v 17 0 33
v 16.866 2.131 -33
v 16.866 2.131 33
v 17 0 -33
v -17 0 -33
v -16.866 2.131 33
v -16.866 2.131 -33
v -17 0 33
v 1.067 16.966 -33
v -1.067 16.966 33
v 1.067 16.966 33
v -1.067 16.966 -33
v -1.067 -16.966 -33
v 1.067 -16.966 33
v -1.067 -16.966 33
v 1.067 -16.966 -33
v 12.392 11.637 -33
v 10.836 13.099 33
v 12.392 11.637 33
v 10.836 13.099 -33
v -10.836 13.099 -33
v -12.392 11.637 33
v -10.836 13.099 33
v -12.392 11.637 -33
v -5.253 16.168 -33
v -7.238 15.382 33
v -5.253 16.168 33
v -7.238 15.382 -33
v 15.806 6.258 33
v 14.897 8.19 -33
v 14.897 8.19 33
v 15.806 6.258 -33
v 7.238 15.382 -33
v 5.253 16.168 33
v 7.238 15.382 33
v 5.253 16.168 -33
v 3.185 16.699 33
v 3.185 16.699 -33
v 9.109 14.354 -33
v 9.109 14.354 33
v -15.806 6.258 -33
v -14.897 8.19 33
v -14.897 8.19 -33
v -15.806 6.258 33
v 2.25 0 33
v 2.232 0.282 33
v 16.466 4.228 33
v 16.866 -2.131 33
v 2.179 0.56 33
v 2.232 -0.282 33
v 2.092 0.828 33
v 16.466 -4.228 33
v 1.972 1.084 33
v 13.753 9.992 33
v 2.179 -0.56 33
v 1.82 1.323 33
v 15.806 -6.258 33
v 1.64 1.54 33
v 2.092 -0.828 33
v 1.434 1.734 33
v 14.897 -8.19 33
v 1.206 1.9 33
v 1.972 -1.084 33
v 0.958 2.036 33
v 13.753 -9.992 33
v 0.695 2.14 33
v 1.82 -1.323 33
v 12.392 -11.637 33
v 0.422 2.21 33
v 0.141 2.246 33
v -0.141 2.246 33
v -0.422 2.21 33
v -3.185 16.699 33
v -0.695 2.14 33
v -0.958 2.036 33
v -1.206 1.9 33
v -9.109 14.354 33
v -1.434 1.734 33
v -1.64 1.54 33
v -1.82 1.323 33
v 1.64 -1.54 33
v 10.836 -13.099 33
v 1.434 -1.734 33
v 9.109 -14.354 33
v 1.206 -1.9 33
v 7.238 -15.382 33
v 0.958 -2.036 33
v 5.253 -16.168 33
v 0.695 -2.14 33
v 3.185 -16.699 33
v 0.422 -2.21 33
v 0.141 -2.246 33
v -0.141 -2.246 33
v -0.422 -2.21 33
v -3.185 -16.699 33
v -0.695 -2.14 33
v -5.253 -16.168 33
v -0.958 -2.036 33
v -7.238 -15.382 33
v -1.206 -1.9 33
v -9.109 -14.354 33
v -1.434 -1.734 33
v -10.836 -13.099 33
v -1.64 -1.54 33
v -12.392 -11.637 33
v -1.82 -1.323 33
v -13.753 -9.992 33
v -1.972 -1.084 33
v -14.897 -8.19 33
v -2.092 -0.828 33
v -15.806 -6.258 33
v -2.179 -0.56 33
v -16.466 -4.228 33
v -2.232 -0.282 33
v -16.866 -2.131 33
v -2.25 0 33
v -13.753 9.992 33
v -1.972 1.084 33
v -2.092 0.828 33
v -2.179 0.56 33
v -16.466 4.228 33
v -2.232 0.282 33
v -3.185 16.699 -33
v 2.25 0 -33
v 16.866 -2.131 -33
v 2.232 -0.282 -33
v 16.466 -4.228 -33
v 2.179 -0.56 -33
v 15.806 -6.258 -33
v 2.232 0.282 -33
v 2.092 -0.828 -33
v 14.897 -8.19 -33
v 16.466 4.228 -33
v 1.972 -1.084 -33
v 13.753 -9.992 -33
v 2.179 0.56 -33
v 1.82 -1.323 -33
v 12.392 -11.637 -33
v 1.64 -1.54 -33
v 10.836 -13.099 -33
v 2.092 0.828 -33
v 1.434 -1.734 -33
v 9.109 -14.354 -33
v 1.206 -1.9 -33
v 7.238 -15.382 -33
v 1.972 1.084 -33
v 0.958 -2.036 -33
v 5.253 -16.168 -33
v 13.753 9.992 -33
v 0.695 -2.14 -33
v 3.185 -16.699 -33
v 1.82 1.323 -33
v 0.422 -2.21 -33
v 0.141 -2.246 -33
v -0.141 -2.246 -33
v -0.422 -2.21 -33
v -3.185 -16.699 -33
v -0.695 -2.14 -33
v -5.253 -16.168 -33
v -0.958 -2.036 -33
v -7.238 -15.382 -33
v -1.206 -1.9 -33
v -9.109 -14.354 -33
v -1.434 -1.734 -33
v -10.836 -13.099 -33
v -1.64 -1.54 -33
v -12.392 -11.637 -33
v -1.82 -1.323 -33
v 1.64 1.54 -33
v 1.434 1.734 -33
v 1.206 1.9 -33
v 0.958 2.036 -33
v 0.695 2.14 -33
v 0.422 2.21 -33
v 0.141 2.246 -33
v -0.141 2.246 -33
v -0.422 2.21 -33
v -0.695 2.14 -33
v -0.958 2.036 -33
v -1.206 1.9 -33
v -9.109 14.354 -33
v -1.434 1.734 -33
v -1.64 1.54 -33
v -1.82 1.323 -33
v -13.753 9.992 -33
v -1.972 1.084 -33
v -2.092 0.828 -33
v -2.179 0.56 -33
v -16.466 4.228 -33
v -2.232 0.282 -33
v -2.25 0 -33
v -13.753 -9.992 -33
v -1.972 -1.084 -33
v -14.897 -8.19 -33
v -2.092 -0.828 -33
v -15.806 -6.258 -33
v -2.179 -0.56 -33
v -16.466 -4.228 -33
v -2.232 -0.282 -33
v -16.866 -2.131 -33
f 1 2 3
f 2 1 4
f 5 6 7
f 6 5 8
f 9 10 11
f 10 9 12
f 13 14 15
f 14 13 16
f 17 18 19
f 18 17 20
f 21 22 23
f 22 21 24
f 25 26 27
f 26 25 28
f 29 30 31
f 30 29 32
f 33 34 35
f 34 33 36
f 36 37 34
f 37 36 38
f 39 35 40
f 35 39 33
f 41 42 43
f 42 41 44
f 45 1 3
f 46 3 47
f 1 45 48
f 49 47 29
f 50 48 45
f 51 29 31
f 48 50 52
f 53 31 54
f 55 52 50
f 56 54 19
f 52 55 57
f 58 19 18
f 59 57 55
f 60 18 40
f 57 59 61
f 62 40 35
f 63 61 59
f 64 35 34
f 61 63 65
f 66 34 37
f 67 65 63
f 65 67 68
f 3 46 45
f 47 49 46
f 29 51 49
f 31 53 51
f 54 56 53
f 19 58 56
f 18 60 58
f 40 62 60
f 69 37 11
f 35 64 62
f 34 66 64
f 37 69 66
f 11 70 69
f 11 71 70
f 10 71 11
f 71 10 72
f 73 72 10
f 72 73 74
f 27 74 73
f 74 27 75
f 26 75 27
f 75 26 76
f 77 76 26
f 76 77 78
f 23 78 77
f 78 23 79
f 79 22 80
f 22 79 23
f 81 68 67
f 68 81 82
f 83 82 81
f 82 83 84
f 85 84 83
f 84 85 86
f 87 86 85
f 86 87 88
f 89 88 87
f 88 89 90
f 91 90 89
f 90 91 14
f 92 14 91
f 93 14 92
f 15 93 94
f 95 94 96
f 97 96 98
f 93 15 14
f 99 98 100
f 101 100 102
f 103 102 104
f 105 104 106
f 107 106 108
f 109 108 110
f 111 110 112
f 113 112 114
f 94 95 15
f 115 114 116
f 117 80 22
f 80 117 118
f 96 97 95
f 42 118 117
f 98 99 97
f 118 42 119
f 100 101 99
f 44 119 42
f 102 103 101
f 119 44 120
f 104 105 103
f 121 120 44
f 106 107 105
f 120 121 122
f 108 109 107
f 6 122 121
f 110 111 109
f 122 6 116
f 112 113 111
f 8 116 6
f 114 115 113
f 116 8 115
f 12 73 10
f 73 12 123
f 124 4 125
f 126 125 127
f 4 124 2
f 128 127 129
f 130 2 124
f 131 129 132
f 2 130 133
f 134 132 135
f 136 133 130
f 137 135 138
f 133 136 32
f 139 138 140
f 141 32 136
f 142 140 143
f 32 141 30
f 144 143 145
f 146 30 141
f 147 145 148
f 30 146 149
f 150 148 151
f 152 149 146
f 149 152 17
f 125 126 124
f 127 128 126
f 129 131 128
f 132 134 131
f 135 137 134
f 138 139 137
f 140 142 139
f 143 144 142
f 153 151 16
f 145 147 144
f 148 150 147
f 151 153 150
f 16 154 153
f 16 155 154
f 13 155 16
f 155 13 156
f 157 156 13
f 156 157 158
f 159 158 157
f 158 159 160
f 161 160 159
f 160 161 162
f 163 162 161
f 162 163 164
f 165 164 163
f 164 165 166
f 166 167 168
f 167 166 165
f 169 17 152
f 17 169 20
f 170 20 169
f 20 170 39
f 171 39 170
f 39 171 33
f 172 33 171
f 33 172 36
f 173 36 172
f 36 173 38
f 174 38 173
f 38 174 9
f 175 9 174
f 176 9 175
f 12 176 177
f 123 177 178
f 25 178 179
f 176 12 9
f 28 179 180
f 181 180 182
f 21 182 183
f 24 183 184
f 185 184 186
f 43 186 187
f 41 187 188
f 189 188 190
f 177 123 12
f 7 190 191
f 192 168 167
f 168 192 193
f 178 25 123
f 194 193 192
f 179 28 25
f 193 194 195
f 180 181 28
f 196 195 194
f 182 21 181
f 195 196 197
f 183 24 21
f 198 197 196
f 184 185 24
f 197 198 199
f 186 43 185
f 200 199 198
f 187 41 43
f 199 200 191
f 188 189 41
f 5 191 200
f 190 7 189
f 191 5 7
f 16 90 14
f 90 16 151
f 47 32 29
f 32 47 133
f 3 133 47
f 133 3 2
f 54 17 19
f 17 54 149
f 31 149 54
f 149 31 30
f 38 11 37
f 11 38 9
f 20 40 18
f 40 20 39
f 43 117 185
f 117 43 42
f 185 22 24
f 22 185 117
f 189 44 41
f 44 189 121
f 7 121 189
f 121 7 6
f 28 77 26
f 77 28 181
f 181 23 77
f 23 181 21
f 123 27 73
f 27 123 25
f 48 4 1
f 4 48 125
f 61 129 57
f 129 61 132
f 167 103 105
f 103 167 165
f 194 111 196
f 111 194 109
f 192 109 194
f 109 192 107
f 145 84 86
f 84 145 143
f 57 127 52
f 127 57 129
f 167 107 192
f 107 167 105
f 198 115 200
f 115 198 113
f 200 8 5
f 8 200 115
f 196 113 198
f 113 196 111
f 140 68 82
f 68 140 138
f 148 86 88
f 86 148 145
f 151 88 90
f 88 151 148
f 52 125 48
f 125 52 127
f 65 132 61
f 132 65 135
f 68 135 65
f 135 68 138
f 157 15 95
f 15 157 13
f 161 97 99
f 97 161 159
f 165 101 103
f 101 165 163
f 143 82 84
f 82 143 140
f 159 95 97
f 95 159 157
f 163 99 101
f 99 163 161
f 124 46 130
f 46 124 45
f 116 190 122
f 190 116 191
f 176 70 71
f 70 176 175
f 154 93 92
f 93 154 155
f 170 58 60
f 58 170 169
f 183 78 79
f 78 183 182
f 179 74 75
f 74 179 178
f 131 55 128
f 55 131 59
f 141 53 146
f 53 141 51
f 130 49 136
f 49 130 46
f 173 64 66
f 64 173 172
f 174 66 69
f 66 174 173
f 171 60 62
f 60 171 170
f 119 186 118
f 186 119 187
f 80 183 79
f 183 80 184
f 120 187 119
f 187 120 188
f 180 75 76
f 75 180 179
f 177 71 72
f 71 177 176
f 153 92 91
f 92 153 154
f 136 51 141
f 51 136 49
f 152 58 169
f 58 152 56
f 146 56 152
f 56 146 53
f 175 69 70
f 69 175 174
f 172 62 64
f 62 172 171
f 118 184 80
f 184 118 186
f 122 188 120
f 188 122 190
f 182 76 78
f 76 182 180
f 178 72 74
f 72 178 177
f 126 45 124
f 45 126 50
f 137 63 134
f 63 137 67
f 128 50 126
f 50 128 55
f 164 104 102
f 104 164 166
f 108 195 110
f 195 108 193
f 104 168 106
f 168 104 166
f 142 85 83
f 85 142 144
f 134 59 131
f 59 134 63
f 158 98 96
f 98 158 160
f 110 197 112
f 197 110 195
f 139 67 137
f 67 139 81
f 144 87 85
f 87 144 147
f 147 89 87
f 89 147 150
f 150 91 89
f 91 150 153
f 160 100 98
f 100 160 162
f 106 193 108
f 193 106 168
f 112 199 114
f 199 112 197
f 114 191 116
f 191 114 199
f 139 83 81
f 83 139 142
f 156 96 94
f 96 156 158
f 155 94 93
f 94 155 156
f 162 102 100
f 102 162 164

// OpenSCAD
$fn = 50;


difference() {
	union() {
		translate(v = [0, 0, -33.0000000000]) {
			cylinder(h = 66, r = 17.0000000000);
		}
	}
	union() {
		translate(v = [0, 0, -100.0000000000]) {
			cylinder(h = 200, r = 2.2500000000);
		}
	}
}
